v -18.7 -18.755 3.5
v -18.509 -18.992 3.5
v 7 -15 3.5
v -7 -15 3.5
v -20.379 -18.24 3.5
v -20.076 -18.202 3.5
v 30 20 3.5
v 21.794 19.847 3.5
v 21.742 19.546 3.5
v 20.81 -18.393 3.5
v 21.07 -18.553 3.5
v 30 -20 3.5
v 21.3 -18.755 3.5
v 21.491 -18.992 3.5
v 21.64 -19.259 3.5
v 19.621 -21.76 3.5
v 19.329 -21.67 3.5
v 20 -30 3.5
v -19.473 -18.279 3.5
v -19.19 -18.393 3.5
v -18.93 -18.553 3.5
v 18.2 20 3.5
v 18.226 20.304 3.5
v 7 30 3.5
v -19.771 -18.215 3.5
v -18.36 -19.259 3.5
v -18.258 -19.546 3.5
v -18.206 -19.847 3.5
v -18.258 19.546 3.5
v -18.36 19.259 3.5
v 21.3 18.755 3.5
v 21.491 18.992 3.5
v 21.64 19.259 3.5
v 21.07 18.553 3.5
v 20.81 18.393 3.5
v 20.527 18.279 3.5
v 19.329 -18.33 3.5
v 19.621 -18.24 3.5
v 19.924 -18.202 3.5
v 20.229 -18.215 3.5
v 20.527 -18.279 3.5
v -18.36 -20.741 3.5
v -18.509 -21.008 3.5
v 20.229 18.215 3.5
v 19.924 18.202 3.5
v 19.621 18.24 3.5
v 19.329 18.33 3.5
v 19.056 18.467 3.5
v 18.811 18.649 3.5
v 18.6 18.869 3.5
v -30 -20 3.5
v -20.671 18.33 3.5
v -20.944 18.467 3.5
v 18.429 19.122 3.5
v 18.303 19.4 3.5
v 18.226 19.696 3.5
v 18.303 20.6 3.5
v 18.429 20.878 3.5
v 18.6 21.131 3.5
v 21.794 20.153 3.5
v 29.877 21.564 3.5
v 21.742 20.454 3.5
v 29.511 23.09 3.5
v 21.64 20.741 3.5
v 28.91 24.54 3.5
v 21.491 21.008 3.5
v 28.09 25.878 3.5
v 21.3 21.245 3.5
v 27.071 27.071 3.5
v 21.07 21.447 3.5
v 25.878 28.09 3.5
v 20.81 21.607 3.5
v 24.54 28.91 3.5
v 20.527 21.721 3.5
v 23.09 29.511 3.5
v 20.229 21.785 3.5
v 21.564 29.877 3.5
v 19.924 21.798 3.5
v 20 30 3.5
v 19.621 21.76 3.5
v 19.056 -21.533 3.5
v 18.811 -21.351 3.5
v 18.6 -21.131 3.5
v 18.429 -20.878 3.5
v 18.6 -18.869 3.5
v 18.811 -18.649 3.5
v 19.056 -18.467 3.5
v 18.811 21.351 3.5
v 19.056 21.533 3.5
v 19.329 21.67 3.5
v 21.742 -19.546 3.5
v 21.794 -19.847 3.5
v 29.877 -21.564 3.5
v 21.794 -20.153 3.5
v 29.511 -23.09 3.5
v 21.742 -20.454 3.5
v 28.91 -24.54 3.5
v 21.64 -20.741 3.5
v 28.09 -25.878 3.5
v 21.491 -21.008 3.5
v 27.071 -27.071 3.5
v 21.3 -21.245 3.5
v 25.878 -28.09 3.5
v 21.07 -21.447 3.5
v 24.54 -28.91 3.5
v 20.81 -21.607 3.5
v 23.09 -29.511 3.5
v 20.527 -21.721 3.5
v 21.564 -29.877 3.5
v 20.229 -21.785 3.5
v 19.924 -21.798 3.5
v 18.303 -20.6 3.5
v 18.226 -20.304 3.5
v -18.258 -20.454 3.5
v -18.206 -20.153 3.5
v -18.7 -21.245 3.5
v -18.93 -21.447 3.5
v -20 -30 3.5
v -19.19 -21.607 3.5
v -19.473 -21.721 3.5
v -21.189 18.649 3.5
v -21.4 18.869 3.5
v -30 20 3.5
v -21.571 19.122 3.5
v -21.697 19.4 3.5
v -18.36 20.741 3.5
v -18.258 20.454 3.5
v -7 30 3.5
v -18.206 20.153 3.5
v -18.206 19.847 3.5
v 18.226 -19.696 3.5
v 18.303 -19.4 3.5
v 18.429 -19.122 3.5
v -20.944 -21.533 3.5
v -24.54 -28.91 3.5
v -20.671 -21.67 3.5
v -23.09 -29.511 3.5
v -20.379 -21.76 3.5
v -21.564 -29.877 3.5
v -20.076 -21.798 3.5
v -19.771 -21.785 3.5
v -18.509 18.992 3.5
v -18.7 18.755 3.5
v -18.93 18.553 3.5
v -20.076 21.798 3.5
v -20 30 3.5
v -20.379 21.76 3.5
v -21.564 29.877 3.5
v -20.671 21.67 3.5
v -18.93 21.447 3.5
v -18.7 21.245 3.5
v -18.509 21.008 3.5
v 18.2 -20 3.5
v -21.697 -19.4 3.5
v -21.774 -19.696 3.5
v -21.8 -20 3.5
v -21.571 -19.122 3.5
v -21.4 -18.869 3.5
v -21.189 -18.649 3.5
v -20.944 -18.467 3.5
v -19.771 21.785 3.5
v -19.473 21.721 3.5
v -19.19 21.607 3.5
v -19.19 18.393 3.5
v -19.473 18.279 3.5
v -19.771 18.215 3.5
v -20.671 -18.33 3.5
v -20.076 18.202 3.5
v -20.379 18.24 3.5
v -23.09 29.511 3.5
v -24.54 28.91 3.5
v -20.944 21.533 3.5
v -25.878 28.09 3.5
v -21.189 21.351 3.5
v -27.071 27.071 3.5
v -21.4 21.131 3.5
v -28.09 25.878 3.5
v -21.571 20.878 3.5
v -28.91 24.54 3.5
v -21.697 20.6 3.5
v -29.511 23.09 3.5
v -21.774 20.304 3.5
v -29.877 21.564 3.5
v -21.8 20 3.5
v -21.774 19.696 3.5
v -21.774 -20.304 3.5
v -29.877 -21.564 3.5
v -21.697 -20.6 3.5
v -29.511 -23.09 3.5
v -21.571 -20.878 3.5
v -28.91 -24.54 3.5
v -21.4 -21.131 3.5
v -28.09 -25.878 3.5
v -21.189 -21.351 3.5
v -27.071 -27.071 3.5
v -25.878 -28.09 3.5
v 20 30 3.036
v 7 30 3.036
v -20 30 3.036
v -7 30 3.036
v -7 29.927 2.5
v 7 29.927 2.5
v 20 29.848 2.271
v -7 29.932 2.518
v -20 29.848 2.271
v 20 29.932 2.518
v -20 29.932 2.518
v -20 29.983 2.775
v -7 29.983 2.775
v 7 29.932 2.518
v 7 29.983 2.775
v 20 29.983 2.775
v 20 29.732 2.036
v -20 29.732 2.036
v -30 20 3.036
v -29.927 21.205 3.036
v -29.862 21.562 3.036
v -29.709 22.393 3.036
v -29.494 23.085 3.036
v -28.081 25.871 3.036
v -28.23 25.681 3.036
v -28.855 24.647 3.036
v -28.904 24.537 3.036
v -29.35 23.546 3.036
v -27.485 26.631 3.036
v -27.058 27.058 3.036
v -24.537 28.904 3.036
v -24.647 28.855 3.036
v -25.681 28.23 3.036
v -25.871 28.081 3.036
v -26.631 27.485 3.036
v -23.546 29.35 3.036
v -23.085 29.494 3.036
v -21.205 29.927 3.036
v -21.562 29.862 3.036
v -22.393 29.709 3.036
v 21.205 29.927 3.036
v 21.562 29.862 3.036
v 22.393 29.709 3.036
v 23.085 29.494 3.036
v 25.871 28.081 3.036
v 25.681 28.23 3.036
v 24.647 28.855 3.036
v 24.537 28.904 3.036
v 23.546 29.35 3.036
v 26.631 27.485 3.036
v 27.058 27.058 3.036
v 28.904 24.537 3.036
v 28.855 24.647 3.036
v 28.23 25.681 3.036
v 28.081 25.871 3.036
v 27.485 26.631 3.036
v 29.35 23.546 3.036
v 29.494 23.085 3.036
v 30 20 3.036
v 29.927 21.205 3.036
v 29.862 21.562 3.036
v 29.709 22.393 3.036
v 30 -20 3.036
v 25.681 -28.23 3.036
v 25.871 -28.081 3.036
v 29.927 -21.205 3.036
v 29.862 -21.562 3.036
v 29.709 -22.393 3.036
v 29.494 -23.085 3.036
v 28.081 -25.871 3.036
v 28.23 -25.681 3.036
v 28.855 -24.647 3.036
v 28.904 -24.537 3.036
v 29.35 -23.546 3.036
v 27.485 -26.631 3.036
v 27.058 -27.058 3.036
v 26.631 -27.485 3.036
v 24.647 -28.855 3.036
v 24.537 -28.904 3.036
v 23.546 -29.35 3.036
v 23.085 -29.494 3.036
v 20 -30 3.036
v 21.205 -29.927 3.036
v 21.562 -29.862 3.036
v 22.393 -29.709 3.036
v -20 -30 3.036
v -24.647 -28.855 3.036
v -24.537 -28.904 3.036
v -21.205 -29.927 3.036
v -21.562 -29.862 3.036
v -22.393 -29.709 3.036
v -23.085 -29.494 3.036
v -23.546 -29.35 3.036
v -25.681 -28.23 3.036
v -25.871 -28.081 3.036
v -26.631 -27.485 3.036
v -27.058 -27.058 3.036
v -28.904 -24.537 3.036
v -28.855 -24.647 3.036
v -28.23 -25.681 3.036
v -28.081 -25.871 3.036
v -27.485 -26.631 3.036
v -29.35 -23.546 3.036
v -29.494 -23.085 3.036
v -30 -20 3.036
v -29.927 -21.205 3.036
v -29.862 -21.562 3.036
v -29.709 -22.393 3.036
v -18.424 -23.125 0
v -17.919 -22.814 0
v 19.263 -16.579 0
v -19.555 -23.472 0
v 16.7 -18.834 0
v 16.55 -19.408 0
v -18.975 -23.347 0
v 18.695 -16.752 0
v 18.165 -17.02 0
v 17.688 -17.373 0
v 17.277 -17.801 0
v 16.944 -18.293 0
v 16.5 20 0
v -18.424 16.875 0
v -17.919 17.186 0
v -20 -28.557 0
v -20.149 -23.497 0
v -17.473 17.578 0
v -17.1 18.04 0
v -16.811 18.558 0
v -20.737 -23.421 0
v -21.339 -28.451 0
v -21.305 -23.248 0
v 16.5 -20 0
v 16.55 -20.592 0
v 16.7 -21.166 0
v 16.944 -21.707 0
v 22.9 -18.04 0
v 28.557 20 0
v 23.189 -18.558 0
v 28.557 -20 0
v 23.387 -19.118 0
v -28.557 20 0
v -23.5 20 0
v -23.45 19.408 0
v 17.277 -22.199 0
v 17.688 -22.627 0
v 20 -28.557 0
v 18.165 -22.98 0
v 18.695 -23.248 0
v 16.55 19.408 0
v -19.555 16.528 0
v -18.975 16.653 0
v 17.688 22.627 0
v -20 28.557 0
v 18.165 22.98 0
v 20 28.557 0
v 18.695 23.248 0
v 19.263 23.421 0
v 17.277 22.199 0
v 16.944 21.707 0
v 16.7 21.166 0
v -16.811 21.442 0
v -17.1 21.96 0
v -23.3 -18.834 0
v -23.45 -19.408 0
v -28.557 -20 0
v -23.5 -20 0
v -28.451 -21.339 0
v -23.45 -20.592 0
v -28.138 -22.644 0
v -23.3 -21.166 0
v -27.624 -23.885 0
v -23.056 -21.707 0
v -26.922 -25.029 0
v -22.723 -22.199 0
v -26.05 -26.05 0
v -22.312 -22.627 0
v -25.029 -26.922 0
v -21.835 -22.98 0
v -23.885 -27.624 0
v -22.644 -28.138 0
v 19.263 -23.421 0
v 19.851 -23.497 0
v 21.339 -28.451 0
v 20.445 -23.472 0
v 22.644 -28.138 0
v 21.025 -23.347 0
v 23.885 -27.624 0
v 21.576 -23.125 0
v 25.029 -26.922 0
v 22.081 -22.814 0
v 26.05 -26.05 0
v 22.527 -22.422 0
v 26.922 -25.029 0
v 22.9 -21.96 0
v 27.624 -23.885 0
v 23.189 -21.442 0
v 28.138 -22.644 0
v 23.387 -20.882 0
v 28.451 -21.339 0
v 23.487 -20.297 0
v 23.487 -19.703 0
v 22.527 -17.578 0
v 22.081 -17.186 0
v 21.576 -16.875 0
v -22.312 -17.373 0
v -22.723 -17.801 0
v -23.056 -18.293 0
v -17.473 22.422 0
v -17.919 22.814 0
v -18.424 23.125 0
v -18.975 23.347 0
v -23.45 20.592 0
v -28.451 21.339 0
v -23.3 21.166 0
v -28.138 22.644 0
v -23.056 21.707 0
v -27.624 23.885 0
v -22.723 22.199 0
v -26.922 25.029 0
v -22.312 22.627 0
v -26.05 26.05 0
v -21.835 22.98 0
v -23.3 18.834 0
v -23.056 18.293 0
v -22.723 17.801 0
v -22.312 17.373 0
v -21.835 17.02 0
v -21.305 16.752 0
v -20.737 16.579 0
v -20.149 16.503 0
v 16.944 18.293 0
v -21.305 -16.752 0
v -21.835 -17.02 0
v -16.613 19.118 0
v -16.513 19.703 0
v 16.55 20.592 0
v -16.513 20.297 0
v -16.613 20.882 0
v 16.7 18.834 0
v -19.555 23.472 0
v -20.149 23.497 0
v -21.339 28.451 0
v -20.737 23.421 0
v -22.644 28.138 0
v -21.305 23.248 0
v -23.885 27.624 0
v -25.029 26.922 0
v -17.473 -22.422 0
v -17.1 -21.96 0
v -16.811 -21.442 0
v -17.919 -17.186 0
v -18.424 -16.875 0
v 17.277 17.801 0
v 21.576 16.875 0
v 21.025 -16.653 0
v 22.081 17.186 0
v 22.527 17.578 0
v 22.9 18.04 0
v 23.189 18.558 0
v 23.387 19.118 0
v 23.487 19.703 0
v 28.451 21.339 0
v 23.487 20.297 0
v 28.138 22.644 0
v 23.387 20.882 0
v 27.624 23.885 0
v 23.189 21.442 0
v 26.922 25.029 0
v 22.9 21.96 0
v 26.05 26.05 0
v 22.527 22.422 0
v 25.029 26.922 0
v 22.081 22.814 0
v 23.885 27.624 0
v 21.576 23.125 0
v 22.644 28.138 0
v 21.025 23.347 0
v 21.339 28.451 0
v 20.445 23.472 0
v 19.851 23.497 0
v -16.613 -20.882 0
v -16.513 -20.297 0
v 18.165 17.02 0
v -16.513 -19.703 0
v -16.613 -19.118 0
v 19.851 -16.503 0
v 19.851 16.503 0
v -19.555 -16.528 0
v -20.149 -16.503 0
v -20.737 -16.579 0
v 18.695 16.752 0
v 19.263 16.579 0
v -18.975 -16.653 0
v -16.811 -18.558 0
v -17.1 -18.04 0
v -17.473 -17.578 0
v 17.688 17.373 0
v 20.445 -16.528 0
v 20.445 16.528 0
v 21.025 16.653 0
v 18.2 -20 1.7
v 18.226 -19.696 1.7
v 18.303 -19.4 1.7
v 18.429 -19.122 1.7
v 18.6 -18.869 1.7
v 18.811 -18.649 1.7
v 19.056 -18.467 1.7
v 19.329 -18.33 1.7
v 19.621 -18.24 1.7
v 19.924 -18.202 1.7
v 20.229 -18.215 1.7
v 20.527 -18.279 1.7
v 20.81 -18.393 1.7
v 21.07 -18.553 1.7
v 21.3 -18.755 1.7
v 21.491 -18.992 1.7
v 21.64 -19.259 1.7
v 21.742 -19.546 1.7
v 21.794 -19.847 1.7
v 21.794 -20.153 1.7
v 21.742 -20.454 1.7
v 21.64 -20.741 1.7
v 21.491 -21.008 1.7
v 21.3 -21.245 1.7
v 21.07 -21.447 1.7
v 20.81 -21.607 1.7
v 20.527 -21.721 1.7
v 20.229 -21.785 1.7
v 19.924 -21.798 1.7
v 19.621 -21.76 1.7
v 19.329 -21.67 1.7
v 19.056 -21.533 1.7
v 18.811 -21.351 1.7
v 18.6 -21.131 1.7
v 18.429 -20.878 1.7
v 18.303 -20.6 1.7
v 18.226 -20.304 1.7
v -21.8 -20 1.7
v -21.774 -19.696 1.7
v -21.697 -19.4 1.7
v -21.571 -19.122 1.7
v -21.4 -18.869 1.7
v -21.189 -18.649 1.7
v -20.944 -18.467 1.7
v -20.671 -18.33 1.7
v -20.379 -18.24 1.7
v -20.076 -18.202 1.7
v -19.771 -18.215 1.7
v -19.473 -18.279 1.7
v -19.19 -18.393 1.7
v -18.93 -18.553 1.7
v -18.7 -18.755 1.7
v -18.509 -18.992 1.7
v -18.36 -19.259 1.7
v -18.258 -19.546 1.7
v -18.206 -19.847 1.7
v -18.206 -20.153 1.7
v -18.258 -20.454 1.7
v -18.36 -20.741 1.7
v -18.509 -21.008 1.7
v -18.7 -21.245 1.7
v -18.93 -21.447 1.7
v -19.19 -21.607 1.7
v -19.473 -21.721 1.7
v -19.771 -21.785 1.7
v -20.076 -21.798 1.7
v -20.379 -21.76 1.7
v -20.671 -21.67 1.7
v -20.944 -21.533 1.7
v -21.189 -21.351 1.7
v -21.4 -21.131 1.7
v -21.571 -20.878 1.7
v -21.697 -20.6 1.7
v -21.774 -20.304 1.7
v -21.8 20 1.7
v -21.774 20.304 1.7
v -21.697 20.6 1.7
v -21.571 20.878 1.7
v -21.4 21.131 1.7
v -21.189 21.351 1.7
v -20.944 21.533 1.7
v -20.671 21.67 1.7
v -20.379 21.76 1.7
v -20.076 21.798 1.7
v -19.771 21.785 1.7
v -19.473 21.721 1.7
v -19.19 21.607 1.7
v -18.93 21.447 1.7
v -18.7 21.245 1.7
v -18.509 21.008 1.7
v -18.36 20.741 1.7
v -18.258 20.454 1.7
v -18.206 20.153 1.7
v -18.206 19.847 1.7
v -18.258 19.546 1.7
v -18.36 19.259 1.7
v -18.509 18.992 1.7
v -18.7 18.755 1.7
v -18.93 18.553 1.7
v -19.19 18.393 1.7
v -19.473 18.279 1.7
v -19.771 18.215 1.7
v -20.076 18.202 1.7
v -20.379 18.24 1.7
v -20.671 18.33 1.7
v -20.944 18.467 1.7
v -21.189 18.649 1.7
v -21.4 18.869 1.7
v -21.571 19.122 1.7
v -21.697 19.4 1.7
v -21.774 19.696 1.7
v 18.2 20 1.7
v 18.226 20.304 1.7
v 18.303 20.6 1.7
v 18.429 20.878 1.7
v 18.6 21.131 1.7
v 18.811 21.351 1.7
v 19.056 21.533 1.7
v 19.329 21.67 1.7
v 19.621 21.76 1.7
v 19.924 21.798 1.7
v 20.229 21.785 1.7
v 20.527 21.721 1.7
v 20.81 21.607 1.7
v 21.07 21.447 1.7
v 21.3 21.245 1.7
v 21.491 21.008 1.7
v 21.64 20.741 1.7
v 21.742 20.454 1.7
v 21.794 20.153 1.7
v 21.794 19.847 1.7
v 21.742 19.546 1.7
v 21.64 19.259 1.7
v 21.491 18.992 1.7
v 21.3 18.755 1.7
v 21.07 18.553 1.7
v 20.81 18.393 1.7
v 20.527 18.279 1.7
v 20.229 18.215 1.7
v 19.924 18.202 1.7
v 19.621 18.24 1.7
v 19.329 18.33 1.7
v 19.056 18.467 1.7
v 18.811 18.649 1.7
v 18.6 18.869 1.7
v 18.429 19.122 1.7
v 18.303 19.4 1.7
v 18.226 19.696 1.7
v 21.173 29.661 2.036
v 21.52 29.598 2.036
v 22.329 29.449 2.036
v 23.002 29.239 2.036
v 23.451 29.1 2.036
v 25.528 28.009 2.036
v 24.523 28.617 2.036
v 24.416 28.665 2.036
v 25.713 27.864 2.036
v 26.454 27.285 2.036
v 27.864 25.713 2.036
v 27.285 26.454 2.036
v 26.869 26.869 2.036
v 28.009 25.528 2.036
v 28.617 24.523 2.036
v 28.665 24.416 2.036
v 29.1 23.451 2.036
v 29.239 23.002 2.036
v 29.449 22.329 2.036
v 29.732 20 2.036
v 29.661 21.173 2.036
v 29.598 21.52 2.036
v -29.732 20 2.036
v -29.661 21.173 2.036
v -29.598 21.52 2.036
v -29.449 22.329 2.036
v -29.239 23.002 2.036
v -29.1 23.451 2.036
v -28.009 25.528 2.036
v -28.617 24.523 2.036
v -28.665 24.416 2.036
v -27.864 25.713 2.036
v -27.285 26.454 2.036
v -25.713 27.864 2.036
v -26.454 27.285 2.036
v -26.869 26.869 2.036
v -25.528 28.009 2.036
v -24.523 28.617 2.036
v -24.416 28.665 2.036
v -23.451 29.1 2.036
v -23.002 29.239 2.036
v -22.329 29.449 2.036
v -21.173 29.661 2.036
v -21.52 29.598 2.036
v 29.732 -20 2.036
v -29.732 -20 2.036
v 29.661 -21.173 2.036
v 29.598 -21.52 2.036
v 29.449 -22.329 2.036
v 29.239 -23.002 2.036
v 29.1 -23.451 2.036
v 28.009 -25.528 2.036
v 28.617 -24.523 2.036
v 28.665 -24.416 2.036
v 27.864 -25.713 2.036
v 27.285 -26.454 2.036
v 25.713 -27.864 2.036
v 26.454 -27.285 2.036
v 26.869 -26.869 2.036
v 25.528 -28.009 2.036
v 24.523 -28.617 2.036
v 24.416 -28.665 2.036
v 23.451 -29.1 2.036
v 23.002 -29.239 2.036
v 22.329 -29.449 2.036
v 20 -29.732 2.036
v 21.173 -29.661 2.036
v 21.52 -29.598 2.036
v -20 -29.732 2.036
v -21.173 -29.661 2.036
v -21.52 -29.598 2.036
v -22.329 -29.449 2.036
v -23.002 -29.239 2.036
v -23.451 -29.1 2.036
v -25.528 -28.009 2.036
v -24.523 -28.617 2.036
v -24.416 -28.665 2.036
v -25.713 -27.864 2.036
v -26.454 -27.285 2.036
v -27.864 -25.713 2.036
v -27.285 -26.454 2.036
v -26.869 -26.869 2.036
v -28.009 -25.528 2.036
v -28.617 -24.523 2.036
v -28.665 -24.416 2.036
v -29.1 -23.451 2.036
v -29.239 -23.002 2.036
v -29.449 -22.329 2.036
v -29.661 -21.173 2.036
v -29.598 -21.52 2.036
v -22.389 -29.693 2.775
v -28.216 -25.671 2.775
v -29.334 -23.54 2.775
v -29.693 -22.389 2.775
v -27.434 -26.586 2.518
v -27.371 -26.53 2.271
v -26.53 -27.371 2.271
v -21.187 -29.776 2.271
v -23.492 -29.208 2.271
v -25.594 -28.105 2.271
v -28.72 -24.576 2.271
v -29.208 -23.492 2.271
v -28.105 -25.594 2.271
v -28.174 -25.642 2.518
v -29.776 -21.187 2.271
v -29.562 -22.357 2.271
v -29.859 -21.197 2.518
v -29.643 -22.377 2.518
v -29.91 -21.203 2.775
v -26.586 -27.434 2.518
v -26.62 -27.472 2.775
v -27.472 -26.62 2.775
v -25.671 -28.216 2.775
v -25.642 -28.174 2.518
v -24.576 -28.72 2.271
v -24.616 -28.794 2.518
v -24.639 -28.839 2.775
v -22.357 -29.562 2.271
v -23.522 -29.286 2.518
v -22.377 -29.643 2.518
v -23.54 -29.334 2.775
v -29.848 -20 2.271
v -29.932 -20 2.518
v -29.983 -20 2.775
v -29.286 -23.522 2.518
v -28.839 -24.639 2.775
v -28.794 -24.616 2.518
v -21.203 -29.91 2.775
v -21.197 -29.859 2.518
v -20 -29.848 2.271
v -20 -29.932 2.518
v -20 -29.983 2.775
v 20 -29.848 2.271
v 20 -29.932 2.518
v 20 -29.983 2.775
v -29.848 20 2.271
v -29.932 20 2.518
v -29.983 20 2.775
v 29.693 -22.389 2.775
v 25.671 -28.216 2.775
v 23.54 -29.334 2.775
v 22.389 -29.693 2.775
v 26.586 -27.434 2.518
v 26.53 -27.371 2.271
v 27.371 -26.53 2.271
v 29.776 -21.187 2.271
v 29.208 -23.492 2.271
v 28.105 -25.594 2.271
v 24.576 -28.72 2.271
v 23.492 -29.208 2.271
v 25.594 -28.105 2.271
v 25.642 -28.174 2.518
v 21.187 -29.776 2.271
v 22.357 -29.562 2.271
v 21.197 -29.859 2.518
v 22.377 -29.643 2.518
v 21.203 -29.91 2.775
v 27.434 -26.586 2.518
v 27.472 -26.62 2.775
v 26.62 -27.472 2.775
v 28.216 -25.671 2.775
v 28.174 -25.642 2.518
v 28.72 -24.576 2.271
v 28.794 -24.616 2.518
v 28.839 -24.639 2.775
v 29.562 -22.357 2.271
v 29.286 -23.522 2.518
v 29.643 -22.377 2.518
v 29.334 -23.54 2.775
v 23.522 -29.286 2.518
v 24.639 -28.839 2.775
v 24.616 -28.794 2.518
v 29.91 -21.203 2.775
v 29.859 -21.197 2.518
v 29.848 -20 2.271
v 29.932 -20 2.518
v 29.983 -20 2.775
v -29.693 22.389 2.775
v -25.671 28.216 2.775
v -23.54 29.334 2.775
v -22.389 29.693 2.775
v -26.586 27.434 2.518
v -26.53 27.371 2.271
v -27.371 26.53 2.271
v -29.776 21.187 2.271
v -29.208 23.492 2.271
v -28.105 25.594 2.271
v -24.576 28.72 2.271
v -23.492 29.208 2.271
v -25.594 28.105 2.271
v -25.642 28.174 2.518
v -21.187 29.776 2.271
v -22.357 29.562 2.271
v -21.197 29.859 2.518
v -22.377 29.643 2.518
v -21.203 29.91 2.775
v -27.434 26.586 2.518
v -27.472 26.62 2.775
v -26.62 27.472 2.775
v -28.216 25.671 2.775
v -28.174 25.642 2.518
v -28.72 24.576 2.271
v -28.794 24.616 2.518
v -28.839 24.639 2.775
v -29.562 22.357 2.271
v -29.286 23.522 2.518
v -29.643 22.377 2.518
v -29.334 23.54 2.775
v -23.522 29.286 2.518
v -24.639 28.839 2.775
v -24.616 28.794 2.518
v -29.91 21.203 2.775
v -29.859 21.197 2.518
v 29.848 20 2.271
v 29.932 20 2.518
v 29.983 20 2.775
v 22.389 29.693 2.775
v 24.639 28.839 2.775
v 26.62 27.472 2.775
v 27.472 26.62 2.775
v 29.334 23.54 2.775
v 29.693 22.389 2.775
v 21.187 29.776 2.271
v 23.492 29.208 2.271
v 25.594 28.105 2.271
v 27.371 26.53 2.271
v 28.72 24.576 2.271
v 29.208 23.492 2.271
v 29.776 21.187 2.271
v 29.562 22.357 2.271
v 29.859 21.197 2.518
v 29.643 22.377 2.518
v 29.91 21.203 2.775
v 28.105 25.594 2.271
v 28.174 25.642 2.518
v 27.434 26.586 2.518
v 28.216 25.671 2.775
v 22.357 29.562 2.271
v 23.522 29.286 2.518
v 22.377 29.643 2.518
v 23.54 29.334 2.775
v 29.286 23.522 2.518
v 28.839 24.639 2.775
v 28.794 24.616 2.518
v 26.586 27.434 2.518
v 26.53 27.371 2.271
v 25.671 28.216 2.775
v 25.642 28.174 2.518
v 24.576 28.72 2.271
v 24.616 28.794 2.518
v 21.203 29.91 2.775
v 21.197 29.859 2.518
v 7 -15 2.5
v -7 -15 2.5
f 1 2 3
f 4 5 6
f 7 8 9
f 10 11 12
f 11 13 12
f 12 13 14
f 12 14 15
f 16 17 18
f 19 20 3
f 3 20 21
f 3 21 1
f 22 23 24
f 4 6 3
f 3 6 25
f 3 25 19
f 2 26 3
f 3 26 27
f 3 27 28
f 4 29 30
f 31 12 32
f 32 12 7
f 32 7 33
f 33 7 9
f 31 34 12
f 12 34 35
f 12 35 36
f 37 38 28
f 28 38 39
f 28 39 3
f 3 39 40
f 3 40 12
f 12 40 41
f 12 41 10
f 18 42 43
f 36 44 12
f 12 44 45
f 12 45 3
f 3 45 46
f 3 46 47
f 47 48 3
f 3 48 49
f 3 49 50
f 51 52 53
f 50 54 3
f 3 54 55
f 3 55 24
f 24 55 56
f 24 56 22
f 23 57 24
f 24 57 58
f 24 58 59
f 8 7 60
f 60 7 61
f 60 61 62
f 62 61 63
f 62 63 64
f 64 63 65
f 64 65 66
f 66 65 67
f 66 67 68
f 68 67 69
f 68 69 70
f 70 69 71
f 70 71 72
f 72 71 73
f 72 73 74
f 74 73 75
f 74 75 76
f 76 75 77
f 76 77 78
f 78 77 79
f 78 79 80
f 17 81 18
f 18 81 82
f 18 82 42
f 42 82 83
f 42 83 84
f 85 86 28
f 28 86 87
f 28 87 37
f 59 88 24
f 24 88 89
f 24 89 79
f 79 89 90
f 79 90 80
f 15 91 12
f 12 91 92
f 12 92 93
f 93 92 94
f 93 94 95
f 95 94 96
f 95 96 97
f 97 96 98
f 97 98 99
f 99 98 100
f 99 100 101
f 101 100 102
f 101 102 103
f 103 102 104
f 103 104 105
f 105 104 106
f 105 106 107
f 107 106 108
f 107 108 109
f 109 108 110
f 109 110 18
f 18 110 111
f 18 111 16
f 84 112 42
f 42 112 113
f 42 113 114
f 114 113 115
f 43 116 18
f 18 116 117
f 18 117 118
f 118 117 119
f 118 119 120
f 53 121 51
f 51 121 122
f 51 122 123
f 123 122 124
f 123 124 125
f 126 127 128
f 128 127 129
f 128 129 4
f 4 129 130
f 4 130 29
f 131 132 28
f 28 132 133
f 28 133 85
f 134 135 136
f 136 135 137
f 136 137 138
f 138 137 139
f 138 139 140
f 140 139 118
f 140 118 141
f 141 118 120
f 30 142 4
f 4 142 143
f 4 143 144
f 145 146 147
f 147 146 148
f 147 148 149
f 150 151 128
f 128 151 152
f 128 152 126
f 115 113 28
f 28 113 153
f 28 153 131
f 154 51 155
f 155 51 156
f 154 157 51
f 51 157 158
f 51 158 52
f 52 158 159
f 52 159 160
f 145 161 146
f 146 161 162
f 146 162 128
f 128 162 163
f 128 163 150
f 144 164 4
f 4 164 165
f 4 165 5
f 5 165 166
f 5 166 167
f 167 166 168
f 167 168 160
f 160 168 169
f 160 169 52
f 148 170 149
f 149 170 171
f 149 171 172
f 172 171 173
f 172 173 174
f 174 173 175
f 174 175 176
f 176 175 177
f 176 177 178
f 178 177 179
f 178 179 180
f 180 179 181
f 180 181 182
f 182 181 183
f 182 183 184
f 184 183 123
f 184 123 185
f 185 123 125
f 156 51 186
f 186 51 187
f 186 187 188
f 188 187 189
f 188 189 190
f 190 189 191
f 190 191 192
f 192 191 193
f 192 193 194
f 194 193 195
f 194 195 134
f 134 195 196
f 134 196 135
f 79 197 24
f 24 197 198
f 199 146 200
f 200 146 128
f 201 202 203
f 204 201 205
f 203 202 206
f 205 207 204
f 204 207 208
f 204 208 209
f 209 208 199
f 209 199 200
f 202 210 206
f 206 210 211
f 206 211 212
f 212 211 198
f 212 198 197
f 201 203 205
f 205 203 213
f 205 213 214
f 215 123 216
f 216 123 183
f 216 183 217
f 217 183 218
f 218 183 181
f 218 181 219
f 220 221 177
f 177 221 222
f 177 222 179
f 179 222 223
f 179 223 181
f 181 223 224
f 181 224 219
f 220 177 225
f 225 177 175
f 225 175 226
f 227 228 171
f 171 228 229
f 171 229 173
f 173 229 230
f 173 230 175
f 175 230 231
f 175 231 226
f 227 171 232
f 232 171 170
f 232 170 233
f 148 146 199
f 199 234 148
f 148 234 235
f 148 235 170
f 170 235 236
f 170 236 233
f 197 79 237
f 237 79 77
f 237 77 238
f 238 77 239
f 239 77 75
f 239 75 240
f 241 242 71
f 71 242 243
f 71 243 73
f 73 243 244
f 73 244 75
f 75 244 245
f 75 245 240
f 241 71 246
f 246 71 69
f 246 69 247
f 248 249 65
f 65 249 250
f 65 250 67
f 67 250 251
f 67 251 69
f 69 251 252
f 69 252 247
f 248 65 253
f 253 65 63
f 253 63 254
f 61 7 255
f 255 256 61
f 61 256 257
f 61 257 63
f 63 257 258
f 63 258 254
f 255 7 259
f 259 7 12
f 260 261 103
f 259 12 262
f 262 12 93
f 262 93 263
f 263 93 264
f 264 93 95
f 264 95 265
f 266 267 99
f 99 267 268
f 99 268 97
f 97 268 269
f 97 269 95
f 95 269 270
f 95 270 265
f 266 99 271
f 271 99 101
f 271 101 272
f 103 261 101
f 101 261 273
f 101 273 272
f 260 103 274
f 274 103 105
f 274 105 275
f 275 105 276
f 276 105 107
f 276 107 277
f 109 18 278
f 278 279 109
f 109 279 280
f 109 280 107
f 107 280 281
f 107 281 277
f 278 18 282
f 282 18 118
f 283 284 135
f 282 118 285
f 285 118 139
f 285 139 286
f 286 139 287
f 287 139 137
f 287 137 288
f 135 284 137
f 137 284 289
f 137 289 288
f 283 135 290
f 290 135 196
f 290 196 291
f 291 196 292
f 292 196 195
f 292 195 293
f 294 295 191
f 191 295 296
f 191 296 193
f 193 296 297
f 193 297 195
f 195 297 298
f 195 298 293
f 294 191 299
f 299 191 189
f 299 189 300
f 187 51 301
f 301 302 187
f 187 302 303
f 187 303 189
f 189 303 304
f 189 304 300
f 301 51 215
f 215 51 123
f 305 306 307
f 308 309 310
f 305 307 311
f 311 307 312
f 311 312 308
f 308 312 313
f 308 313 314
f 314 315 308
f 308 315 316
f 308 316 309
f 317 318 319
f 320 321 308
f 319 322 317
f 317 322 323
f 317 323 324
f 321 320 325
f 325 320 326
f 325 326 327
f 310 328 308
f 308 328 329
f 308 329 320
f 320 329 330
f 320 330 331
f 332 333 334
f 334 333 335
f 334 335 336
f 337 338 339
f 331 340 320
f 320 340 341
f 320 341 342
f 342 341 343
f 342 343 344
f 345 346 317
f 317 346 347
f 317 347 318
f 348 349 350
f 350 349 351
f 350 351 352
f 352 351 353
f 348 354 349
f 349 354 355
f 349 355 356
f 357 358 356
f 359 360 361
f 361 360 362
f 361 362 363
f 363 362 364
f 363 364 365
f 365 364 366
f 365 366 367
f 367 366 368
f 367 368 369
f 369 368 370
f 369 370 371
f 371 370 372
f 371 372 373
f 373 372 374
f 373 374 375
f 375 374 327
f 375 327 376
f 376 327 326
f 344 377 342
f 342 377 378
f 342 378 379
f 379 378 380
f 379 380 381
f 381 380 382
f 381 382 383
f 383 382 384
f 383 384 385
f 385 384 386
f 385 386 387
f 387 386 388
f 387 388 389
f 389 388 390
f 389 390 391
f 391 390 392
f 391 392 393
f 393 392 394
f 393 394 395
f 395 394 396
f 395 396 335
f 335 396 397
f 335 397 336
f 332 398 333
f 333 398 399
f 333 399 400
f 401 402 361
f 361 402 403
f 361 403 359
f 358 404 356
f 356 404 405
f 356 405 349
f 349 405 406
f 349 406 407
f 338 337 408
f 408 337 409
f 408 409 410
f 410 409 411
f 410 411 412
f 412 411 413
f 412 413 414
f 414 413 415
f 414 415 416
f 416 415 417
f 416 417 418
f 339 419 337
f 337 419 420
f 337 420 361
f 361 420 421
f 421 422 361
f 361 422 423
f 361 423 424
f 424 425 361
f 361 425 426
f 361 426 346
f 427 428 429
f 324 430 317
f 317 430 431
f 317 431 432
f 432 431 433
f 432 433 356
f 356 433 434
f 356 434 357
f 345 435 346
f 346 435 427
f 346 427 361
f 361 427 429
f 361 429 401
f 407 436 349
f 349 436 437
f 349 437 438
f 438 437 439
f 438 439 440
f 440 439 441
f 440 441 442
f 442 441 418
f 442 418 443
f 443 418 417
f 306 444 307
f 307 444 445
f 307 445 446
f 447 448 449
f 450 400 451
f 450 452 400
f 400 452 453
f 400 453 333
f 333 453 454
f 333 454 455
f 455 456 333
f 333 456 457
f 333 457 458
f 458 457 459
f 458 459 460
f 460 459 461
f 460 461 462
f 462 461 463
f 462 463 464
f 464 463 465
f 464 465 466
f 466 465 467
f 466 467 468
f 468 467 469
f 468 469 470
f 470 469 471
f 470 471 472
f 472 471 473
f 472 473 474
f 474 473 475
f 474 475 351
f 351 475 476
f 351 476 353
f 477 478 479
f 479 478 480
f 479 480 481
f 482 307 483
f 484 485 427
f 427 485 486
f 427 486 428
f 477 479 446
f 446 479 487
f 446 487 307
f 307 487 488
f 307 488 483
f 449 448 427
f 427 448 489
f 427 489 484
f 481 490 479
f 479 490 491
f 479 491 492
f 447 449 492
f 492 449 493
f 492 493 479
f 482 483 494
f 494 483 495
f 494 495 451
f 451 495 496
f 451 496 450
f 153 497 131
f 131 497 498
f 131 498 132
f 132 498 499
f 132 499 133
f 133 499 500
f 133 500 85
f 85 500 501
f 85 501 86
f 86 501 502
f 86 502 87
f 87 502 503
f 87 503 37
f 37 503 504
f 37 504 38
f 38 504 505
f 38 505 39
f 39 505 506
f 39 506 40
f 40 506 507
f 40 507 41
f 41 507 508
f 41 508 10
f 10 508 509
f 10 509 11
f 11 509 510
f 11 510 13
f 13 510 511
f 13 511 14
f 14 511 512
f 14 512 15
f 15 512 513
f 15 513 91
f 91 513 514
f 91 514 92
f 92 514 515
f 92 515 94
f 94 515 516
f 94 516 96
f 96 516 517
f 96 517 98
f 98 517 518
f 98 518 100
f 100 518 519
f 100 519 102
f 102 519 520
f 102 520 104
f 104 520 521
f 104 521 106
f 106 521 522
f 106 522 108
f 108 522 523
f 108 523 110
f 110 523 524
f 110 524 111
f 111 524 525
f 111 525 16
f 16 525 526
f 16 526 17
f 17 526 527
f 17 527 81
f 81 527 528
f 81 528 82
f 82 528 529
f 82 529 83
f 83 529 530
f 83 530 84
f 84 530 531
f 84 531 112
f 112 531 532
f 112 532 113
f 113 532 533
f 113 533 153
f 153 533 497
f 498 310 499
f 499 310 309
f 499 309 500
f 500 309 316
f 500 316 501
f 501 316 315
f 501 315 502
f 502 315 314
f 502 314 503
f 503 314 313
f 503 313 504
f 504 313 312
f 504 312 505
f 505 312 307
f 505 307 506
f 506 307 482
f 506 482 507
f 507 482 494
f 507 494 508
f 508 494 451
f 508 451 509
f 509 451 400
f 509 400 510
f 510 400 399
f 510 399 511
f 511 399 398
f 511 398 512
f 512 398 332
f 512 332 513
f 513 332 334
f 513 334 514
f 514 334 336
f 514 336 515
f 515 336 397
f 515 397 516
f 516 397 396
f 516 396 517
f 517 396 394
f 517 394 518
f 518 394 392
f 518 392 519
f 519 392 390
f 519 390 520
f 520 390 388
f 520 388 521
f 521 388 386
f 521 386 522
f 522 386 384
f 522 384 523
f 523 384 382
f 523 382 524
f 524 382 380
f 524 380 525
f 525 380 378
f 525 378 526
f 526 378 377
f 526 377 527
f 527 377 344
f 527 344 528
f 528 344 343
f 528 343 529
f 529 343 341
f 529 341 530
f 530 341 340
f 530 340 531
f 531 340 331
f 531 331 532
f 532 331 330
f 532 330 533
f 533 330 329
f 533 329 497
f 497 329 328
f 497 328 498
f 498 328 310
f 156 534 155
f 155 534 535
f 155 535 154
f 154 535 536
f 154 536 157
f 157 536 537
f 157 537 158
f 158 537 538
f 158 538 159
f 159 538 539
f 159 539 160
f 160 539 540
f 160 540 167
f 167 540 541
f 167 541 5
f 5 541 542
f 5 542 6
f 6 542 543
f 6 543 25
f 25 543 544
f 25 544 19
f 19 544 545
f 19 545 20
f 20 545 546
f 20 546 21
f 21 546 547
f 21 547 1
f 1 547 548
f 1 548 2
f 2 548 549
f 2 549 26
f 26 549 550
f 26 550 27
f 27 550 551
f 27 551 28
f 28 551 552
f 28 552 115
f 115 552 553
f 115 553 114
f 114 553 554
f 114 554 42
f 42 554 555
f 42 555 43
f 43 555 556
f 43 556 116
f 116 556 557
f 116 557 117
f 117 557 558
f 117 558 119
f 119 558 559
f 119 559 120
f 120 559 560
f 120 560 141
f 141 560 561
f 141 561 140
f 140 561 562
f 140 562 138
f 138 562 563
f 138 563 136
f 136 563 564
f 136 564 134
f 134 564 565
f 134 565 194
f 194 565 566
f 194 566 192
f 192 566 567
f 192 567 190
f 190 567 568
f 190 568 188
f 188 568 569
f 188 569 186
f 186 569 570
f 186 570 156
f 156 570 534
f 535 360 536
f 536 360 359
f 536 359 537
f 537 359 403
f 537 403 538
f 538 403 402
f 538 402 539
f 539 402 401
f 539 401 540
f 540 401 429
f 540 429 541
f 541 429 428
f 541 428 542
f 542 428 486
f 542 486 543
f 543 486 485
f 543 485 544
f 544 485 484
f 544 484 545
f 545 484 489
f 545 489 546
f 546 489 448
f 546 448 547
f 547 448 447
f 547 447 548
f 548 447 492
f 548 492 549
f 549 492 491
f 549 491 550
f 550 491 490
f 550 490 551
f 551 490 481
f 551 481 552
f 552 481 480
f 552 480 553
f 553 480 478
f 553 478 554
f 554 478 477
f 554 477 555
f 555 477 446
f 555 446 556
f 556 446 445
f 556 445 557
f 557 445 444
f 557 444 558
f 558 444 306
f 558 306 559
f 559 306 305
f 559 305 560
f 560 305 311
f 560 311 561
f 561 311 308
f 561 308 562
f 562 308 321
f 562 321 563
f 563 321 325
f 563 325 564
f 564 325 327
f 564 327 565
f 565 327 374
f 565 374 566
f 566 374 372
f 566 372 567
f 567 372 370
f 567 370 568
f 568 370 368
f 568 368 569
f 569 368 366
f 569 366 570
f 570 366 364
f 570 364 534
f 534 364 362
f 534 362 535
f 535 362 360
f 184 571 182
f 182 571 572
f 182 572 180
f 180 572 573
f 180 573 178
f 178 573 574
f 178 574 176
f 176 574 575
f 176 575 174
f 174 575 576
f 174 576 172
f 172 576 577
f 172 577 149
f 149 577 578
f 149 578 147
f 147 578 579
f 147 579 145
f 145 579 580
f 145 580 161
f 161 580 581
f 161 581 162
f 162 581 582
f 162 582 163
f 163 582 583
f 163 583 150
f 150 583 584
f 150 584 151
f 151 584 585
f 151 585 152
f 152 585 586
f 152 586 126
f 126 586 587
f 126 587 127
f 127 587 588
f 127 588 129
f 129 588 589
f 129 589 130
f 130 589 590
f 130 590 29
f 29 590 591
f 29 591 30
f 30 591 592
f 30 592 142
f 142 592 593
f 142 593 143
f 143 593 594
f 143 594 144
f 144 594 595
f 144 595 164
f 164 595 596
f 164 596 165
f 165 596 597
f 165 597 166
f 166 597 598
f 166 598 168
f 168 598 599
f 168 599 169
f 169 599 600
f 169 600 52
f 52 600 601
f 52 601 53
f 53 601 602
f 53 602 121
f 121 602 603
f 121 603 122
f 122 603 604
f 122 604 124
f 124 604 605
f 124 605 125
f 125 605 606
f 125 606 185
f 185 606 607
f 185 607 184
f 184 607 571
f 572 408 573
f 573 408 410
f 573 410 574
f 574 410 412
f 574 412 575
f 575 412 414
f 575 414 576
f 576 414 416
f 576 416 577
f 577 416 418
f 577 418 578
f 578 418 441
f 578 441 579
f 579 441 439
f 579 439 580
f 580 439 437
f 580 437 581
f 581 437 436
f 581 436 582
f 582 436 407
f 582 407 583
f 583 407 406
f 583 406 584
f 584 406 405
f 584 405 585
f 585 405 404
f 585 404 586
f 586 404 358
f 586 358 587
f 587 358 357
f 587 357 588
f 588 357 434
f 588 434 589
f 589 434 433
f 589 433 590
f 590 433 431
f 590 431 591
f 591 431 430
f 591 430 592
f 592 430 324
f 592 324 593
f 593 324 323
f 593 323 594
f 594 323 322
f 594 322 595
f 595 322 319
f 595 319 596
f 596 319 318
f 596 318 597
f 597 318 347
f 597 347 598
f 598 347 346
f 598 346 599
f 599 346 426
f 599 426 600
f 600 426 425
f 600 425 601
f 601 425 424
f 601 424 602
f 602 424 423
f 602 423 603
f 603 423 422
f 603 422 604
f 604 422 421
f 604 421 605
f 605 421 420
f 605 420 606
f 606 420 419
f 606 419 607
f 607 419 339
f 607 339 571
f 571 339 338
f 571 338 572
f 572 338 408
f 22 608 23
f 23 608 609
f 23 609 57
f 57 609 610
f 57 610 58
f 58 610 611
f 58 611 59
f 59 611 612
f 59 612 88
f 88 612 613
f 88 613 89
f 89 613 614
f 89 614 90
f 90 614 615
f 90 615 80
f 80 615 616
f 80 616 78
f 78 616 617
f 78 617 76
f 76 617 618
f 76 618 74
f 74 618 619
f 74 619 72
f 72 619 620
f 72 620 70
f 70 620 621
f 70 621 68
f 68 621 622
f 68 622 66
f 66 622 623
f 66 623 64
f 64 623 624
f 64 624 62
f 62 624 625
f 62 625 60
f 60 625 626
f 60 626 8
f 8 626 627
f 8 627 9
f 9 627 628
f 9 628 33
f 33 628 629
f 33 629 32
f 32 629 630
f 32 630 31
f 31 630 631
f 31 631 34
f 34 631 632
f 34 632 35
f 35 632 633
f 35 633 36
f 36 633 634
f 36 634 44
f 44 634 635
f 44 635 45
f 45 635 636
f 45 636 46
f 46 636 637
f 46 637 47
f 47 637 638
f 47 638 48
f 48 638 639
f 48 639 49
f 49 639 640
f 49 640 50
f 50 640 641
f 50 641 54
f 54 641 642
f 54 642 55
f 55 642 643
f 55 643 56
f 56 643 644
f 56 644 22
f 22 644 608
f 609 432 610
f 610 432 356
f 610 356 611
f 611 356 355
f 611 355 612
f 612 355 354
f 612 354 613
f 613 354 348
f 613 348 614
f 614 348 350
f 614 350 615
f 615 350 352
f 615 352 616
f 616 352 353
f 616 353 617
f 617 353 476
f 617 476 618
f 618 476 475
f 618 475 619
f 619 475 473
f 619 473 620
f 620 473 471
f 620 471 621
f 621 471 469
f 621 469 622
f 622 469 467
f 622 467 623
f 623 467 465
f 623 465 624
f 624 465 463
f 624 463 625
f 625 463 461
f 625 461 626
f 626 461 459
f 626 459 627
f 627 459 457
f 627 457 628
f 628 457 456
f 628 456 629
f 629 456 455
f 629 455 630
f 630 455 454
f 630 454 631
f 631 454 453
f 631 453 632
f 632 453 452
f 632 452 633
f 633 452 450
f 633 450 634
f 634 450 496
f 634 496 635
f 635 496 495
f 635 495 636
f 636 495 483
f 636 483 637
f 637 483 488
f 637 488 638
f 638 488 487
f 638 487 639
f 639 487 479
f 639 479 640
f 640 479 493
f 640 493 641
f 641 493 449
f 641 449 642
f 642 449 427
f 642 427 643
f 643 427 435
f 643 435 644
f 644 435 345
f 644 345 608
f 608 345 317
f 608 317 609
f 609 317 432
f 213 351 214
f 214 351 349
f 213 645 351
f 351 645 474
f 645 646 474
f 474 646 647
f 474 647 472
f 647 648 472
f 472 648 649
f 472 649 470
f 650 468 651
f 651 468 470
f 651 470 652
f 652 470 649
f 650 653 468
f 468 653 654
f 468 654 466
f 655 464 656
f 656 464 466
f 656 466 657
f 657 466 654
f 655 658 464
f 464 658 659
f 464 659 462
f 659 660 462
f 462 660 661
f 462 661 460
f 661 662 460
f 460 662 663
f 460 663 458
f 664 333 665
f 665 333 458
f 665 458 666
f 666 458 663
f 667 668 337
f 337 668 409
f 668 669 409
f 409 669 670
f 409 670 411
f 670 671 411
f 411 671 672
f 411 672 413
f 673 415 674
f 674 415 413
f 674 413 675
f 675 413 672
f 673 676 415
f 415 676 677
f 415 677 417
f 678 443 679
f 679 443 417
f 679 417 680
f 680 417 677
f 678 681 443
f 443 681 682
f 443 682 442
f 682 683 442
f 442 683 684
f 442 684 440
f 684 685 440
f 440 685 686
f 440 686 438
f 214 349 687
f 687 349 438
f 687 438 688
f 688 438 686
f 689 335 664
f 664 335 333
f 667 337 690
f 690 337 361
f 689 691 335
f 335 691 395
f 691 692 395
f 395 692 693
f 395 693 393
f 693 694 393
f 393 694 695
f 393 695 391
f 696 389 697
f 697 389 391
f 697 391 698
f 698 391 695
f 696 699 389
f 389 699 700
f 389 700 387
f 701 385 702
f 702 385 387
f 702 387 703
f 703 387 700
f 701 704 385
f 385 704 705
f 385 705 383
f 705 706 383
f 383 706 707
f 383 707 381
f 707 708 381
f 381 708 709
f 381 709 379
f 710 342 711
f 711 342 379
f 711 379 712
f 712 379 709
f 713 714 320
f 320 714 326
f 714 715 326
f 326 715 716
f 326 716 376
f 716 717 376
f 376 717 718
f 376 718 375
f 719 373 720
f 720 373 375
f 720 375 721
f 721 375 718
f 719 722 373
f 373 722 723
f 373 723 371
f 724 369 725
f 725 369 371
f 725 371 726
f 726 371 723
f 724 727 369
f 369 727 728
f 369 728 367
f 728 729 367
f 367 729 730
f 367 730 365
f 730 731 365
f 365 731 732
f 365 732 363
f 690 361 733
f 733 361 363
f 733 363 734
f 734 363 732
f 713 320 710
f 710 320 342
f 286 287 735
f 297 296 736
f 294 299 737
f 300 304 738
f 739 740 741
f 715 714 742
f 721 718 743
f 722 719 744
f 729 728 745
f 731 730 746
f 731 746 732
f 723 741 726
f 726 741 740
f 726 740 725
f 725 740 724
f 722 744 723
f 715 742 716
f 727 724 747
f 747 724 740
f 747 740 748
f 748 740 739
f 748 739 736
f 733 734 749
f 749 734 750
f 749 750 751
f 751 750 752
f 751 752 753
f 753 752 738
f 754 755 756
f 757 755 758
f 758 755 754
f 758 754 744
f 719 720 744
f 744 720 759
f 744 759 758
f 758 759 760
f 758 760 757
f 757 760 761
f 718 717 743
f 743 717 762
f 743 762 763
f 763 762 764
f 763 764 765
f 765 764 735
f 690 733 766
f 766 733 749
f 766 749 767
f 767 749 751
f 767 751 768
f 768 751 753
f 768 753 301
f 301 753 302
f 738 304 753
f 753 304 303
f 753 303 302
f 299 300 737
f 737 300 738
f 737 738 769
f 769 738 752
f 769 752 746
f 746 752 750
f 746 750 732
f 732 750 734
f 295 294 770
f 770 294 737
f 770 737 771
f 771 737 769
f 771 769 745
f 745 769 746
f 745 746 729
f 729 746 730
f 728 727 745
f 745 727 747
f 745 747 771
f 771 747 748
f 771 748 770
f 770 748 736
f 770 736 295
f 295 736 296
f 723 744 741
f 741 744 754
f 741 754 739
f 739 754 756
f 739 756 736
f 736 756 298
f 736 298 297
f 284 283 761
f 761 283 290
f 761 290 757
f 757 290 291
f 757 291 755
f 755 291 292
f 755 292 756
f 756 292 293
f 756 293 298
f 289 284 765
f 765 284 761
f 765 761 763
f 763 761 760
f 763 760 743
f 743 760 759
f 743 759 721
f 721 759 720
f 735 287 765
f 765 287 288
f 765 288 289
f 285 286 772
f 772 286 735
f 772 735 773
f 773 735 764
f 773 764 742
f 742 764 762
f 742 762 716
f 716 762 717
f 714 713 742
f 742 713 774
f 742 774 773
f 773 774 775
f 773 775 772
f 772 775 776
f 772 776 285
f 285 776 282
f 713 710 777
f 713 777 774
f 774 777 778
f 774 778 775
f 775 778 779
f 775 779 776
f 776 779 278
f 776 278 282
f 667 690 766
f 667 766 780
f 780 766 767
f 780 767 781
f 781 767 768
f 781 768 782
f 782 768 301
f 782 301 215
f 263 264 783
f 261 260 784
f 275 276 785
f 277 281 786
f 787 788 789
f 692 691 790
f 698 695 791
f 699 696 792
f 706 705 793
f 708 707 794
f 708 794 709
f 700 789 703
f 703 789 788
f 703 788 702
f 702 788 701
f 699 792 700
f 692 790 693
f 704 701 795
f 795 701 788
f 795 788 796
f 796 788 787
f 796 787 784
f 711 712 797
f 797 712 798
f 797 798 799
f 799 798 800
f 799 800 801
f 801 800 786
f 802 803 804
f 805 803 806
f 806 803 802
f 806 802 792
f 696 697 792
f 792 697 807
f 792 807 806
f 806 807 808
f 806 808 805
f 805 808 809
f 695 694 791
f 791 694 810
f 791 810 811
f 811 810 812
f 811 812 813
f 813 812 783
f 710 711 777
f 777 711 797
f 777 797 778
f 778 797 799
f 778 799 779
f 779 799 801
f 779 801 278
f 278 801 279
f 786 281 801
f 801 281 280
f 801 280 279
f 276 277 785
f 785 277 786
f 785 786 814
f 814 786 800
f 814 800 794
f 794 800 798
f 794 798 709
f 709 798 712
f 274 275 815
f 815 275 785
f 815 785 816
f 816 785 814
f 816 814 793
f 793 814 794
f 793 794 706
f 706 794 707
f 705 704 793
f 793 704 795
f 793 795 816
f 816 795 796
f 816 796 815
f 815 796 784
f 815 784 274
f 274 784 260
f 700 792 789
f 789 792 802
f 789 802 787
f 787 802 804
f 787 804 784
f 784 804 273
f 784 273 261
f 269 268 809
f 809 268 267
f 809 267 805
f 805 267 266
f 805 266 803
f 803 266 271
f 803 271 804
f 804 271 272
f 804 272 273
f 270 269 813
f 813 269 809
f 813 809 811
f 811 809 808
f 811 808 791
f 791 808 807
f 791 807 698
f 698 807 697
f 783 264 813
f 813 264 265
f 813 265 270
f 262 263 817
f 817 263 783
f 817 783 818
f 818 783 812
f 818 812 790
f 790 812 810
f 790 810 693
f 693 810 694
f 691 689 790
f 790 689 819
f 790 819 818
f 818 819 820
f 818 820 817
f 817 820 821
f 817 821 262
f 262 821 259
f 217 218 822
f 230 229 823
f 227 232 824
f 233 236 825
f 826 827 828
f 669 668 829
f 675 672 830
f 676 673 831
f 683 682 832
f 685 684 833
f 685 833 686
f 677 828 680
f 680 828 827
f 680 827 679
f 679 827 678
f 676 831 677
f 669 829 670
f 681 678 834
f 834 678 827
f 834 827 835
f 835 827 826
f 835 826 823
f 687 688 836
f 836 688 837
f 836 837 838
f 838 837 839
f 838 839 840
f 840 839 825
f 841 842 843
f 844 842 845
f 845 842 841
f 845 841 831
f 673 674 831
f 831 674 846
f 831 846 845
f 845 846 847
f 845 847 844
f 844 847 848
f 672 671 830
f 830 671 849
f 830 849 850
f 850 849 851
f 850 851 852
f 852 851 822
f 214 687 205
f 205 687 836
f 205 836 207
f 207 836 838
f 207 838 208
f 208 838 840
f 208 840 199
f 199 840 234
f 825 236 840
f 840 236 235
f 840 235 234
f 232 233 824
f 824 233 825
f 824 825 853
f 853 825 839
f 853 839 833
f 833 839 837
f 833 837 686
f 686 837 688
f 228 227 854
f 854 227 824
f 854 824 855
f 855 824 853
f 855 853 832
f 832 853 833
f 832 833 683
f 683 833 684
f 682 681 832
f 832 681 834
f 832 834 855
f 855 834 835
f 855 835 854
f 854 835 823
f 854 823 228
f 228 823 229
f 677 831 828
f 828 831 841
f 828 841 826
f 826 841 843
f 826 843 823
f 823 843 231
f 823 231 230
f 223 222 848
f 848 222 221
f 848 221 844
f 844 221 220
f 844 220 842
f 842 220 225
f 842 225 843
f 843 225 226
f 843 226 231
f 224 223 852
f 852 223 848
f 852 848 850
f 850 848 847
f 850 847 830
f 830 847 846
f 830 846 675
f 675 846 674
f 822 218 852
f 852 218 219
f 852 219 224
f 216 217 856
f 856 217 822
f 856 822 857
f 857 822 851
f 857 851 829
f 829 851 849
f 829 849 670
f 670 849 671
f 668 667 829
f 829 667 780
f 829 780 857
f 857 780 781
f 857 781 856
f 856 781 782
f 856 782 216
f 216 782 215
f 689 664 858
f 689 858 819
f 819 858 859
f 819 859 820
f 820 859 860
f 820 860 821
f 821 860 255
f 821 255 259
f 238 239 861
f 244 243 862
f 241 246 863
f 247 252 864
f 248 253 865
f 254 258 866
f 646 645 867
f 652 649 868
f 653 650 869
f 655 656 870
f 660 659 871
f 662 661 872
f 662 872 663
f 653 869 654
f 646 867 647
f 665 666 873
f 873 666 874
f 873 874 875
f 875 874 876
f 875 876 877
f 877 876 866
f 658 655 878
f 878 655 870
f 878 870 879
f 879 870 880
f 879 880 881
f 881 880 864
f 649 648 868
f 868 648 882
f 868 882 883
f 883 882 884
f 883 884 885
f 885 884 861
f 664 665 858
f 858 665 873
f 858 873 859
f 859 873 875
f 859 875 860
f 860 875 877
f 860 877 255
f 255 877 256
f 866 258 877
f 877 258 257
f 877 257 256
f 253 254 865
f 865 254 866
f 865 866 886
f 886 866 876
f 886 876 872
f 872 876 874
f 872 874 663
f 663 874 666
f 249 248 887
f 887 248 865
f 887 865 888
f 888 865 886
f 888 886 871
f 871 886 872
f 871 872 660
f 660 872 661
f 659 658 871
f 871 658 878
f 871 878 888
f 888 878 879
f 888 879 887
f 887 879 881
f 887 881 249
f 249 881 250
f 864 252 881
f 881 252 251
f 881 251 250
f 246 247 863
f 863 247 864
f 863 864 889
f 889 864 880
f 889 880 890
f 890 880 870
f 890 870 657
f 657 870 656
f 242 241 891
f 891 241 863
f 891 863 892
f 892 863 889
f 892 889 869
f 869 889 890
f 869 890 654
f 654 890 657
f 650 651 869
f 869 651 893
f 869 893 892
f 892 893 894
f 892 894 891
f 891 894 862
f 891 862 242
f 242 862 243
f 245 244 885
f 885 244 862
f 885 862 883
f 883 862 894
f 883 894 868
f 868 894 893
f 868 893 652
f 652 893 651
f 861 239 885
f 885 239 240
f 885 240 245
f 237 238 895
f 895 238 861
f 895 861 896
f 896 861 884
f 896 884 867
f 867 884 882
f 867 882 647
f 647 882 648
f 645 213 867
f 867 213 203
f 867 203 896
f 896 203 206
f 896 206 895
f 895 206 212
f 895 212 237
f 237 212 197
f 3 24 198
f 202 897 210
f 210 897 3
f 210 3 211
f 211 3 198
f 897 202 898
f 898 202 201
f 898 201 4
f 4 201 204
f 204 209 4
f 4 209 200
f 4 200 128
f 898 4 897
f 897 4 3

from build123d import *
from OCP.BRepFilletAPI import BRepFilletAPI_MakeChamfer

# Parameters (mm, degrees)
BOSS_EXTRUDE1_DEPTH                                 = 3.5
CSK_FOR_M3_COUNTERSUNK_FLAT_HEAD_SCREW1_D           = 3.6
CSK_FOR_M3_COUNTERSUNK_FLAT_HEAD_SCREW1_CSINK_D     = 7
CSK_FOR_M3_COUNTERSUNK_FLAT_HEAD_SCREW1_CSINK_ANGLE = 90
CHAMFER1_SIZE                                       = 2.5
CHAMFER1_SIZE2                                      = 1.443375673
FILLET2_R                                           = 2
SKETCH4_W                                           = 14
SKETCH4_H                                           = 4.115813757
CUT_EXTRUDE1_DEPTH                                  = 43.570529862
CUT_EXTRUDE1_DEPTH_BACK                             = 15
BODY_MOVE_COPY1_ANGLE                               = 180


with BuildPart() as part:
    # Sketch1 → Boss-Extrude1 (new body)
    with BuildSketch(Plane.XY):
        with BuildLine():
            Line((-20, 30), (20, 30))
            ThreePointArc((20, 30), (27.071067812, 27.071067812), (30, 20))
            Line((30, 20), (30, -20))
            ThreePointArc((30, -20), (27.071067812, -27.071067812), (20, -30))
            Line((20, -30), (-20, -30))
            ThreePointArc((-20, -30), (-27.071067812, -27.071067812), (-30, -20))
            Line((-30, -20), (-30, 20))
            ThreePointArc((-30, 20), (-27.071067812, 27.071067812), (-20, 30))
        make_face()
    extrude(amount=BOSS_EXTRUDE1_DEPTH)

    # CSK for M3 Countersunk Flat Head Screw1 (through all)
    with Locations(Plane.XY.offset(3.5)):
        with Locations((-20, 20), (20, 20), (20, -20), (-20, -20)):
            CounterSinkHole(CSK_FOR_M3_COUNTERSUNK_FLAT_HEAD_SCREW1_D / 2, CSK_FOR_M3_COUNTERSUNK_FLAT_HEAD_SCREW1_CSINK_D / 2, counter_sink_angle=CSK_FOR_M3_COUNTERSUNK_FLAT_HEAD_SCREW1_CSINK_ANGLE)

    # Chamfer1: one chamfer whose edges measure the first distance from different faces: ONE call of the kernel's chamfer builder (chamfer() names one face for all edges)
    chamfer1_edges_1 = [part.edges().sort_by_distance(p)[0] for p in [
        (-27.071067812, 27.071067812, 3.5),
    ]]
    chamfer1_side_1 = [part.faces().sort_by_distance(p)[0] for p in [
        (-27.071067812, 27.071067812, 1.75),
    ]]
    chamfer1_edges_2 = [part.edges().sort_by_distance(p)[0] for p in [
        (-30, 0, 3.5),
    ]]
    chamfer1_side_2 = [part.faces().sort_by_distance(p)[0] for p in [
        (-30, 0, 1.75),
    ]]
    chamfer1_edges_3 = [part.edges().sort_by_distance(p)[0] for p in [
        (-27.071067812, -27.071067812, 3.5),
    ]]
    chamfer1_side_3 = [part.faces().sort_by_distance(p)[0] for p in [
        (-27.071067812, -27.071067812, 1.75),
    ]]
    chamfer1_edges_4 = [part.edges().sort_by_distance(p)[0] for p in [
        (0, -30, 3.5),
    ]]
    chamfer1_side_4 = [part.faces().sort_by_distance(p)[0] for p in [
        (0, -30, 1.75),
    ]]
    chamfer1_edges_5 = [part.edges().sort_by_distance(p)[0] for p in [
        (27.071067812, -27.071067812, 3.5),
    ]]
    chamfer1_side_5 = [part.faces().sort_by_distance(p)[0] for p in [
        (27.071067812, -27.071067812, 1.75),
    ]]
    chamfer1_edges_6 = [part.edges().sort_by_distance(p)[0] for p in [
        (30, 0, 3.5),
    ]]
    chamfer1_side_6 = [part.faces().sort_by_distance(p)[0] for p in [
        (30, 0, 1.75),
    ]]
    chamfer1_edges_7 = [part.edges().sort_by_distance(p)[0] for p in [
        (27.071067812, 27.071067812, 3.5),
    ]]
    chamfer1_side_7 = [part.faces().sort_by_distance(p)[0] for p in [
        (27.071067812, 27.071067812, 1.75),
    ]]
    chamfer1_edges_8 = [part.edges().sort_by_distance(p)[0] for p in [
        (0, 30, 3.5),
    ]]
    chamfer1_side_8 = [part.faces().sort_by_distance(p)[0] for p in [
        (0, 30, 1.75),
    ]]
    chamfer1 = BRepFilletAPI_MakeChamfer(part.part.solid().wrapped)
    for e in chamfer1_edges_1:
        chamfer1.Add(CHAMFER1_SIZE, CHAMFER1_SIZE2, e.wrapped, chamfer1_side_1[0].wrapped)  # the first distance lies on this face
    for e in chamfer1_edges_2:
        chamfer1.Add(CHAMFER1_SIZE, CHAMFER1_SIZE2, e.wrapped, chamfer1_side_2[0].wrapped)  # the first distance lies on this face
    for e in chamfer1_edges_3:
        chamfer1.Add(CHAMFER1_SIZE, CHAMFER1_SIZE2, e.wrapped, chamfer1_side_3[0].wrapped)  # the first distance lies on this face
    for e in chamfer1_edges_4:
        chamfer1.Add(CHAMFER1_SIZE, CHAMFER1_SIZE2, e.wrapped, chamfer1_side_4[0].wrapped)  # the first distance lies on this face
    for e in chamfer1_edges_5:
        chamfer1.Add(CHAMFER1_SIZE, CHAMFER1_SIZE2, e.wrapped, chamfer1_side_5[0].wrapped)  # the first distance lies on this face
    for e in chamfer1_edges_6:
        chamfer1.Add(CHAMFER1_SIZE, CHAMFER1_SIZE2, e.wrapped, chamfer1_side_6[0].wrapped)  # the first distance lies on this face
    for e in chamfer1_edges_7:
        chamfer1.Add(CHAMFER1_SIZE, CHAMFER1_SIZE2, e.wrapped, chamfer1_side_7[0].wrapped)  # the first distance lies on this face
    for e in chamfer1_edges_8:
        chamfer1.Add(CHAMFER1_SIZE, CHAMFER1_SIZE2, e.wrapped, chamfer1_side_8[0].wrapped)  # the first distance lies on this face
    add(Compound.cast(chamfer1.Shape()), mode=Mode.REPLACE)

    # Fillet2
    fillet2_edges = [part.edges().sort_by_distance(p)[0] for p in [
        (0, -30, 1),
        (27.071067812, -27.071067812, 1),
        (-27.071067812, -27.071067812, 1),
        (30, 0, 1),
        (-30, 0, 1),
        (27.071067812, 27.071067812, 1),
        (-27.071067812, 27.071067812, 1),
        (0, 30, 1),
    ]]
    fillet(fillet2_edges, radius=FILLET2_R)

    # Sketch4 → Cut-Extrude1 (cut, two sides)
    with BuildSketch(Plane(origin=(0, 0, 0), x_dir=(1, 0, 0), z_dir=(0, 1, 0))) as cut_extrude1_sk:
        with Locations((0, 1.057906879)):
            Rectangle(SKETCH4_W, SKETCH4_H)
    extrude(amount=CUT_EXTRUDE1_DEPTH, mode=Mode.SUBTRACT)
    extrude(cut_extrude1_sk.sketch, amount=-CUT_EXTRUDE1_DEPTH_BACK, mode=Mode.SUBTRACT)


with BuildPart() as part_1:
    # Body-Move/Copy1: moved
    add(part.part.rotate(Axis((0, 0, 1.75), (0, 1, 0)), BODY_MOVE_COPY1_ANGLE))


solid = part_1.part
